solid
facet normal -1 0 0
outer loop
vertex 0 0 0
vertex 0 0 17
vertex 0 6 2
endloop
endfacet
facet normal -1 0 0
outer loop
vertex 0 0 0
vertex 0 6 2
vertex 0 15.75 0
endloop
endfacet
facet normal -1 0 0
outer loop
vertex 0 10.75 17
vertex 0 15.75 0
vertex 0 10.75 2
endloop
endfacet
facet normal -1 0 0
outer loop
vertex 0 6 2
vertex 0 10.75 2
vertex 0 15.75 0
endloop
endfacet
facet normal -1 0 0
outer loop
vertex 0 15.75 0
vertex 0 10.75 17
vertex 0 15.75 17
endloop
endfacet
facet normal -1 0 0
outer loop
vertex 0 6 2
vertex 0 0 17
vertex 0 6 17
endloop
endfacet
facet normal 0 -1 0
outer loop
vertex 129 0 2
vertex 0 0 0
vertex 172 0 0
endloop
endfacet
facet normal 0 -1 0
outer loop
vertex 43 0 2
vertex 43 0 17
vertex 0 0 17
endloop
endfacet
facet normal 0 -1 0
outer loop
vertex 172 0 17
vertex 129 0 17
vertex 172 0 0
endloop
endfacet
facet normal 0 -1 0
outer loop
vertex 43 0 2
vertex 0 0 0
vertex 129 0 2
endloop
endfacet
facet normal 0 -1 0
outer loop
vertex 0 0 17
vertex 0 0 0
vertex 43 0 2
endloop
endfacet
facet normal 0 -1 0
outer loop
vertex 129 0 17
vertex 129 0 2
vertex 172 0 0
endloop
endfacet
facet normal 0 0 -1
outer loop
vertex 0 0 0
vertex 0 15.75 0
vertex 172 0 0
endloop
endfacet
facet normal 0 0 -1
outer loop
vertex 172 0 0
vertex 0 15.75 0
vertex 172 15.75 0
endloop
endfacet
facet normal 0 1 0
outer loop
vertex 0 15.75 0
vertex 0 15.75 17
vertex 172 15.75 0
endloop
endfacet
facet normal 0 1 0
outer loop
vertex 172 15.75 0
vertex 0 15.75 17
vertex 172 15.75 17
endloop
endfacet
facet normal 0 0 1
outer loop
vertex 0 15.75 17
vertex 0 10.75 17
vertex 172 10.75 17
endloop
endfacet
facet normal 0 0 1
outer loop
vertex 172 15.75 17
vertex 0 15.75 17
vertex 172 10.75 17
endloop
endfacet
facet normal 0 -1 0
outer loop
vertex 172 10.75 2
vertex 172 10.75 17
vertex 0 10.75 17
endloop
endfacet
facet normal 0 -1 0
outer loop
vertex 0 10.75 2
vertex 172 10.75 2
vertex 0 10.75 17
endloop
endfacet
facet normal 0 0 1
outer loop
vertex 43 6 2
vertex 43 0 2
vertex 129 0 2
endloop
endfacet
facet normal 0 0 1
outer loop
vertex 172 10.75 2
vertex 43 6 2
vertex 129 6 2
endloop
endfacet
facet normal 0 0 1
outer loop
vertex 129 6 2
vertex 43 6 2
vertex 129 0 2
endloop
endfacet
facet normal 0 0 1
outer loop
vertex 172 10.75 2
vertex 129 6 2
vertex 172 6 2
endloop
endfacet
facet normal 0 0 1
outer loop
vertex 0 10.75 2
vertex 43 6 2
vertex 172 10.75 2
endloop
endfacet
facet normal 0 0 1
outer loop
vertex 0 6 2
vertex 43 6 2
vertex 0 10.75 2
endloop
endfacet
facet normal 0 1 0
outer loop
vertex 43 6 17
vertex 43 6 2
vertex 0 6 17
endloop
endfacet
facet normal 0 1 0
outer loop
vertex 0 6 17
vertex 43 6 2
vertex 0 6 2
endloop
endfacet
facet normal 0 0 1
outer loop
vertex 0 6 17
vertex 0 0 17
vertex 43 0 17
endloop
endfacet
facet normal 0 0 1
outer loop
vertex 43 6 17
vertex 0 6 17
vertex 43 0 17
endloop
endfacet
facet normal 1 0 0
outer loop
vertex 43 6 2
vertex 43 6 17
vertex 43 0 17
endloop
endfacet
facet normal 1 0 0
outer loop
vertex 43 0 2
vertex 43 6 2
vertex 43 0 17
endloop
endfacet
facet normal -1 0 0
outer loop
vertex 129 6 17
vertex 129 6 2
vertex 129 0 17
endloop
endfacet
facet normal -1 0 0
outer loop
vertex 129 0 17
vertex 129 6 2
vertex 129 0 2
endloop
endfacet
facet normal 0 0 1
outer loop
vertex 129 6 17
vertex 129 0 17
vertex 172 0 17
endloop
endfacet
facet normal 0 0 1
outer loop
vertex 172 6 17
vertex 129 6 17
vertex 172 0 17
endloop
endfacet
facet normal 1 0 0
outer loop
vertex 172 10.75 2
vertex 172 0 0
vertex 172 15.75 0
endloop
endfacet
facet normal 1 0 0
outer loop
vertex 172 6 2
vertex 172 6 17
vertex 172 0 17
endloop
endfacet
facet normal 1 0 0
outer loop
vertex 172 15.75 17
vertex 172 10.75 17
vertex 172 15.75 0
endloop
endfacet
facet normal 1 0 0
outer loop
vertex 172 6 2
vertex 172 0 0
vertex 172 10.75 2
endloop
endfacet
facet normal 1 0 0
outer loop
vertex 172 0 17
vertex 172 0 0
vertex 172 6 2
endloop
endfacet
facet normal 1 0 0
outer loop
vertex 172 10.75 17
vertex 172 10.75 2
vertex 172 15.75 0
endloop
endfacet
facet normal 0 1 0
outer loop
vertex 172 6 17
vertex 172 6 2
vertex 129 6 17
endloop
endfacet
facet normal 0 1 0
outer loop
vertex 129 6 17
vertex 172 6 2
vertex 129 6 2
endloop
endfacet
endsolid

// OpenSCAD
slotside = 4.75;
slotwidth = 6;
slotdepth = 15;
centergap = 86;

bracketwidth = 5;
bracketheight = 2;

difference()
{
	cube([centergap * 2, slotside + slotwidth + bracketwidth, slotdepth + bracketheight]);
	translate([centergap/2, 0, bracketheight]) cube([centergap, slotside + slotwidth, slotdepth]);
	translate([0, slotwidth, bracketheight]) cube([centergap * 2, slotside, slotdepth]);
}
